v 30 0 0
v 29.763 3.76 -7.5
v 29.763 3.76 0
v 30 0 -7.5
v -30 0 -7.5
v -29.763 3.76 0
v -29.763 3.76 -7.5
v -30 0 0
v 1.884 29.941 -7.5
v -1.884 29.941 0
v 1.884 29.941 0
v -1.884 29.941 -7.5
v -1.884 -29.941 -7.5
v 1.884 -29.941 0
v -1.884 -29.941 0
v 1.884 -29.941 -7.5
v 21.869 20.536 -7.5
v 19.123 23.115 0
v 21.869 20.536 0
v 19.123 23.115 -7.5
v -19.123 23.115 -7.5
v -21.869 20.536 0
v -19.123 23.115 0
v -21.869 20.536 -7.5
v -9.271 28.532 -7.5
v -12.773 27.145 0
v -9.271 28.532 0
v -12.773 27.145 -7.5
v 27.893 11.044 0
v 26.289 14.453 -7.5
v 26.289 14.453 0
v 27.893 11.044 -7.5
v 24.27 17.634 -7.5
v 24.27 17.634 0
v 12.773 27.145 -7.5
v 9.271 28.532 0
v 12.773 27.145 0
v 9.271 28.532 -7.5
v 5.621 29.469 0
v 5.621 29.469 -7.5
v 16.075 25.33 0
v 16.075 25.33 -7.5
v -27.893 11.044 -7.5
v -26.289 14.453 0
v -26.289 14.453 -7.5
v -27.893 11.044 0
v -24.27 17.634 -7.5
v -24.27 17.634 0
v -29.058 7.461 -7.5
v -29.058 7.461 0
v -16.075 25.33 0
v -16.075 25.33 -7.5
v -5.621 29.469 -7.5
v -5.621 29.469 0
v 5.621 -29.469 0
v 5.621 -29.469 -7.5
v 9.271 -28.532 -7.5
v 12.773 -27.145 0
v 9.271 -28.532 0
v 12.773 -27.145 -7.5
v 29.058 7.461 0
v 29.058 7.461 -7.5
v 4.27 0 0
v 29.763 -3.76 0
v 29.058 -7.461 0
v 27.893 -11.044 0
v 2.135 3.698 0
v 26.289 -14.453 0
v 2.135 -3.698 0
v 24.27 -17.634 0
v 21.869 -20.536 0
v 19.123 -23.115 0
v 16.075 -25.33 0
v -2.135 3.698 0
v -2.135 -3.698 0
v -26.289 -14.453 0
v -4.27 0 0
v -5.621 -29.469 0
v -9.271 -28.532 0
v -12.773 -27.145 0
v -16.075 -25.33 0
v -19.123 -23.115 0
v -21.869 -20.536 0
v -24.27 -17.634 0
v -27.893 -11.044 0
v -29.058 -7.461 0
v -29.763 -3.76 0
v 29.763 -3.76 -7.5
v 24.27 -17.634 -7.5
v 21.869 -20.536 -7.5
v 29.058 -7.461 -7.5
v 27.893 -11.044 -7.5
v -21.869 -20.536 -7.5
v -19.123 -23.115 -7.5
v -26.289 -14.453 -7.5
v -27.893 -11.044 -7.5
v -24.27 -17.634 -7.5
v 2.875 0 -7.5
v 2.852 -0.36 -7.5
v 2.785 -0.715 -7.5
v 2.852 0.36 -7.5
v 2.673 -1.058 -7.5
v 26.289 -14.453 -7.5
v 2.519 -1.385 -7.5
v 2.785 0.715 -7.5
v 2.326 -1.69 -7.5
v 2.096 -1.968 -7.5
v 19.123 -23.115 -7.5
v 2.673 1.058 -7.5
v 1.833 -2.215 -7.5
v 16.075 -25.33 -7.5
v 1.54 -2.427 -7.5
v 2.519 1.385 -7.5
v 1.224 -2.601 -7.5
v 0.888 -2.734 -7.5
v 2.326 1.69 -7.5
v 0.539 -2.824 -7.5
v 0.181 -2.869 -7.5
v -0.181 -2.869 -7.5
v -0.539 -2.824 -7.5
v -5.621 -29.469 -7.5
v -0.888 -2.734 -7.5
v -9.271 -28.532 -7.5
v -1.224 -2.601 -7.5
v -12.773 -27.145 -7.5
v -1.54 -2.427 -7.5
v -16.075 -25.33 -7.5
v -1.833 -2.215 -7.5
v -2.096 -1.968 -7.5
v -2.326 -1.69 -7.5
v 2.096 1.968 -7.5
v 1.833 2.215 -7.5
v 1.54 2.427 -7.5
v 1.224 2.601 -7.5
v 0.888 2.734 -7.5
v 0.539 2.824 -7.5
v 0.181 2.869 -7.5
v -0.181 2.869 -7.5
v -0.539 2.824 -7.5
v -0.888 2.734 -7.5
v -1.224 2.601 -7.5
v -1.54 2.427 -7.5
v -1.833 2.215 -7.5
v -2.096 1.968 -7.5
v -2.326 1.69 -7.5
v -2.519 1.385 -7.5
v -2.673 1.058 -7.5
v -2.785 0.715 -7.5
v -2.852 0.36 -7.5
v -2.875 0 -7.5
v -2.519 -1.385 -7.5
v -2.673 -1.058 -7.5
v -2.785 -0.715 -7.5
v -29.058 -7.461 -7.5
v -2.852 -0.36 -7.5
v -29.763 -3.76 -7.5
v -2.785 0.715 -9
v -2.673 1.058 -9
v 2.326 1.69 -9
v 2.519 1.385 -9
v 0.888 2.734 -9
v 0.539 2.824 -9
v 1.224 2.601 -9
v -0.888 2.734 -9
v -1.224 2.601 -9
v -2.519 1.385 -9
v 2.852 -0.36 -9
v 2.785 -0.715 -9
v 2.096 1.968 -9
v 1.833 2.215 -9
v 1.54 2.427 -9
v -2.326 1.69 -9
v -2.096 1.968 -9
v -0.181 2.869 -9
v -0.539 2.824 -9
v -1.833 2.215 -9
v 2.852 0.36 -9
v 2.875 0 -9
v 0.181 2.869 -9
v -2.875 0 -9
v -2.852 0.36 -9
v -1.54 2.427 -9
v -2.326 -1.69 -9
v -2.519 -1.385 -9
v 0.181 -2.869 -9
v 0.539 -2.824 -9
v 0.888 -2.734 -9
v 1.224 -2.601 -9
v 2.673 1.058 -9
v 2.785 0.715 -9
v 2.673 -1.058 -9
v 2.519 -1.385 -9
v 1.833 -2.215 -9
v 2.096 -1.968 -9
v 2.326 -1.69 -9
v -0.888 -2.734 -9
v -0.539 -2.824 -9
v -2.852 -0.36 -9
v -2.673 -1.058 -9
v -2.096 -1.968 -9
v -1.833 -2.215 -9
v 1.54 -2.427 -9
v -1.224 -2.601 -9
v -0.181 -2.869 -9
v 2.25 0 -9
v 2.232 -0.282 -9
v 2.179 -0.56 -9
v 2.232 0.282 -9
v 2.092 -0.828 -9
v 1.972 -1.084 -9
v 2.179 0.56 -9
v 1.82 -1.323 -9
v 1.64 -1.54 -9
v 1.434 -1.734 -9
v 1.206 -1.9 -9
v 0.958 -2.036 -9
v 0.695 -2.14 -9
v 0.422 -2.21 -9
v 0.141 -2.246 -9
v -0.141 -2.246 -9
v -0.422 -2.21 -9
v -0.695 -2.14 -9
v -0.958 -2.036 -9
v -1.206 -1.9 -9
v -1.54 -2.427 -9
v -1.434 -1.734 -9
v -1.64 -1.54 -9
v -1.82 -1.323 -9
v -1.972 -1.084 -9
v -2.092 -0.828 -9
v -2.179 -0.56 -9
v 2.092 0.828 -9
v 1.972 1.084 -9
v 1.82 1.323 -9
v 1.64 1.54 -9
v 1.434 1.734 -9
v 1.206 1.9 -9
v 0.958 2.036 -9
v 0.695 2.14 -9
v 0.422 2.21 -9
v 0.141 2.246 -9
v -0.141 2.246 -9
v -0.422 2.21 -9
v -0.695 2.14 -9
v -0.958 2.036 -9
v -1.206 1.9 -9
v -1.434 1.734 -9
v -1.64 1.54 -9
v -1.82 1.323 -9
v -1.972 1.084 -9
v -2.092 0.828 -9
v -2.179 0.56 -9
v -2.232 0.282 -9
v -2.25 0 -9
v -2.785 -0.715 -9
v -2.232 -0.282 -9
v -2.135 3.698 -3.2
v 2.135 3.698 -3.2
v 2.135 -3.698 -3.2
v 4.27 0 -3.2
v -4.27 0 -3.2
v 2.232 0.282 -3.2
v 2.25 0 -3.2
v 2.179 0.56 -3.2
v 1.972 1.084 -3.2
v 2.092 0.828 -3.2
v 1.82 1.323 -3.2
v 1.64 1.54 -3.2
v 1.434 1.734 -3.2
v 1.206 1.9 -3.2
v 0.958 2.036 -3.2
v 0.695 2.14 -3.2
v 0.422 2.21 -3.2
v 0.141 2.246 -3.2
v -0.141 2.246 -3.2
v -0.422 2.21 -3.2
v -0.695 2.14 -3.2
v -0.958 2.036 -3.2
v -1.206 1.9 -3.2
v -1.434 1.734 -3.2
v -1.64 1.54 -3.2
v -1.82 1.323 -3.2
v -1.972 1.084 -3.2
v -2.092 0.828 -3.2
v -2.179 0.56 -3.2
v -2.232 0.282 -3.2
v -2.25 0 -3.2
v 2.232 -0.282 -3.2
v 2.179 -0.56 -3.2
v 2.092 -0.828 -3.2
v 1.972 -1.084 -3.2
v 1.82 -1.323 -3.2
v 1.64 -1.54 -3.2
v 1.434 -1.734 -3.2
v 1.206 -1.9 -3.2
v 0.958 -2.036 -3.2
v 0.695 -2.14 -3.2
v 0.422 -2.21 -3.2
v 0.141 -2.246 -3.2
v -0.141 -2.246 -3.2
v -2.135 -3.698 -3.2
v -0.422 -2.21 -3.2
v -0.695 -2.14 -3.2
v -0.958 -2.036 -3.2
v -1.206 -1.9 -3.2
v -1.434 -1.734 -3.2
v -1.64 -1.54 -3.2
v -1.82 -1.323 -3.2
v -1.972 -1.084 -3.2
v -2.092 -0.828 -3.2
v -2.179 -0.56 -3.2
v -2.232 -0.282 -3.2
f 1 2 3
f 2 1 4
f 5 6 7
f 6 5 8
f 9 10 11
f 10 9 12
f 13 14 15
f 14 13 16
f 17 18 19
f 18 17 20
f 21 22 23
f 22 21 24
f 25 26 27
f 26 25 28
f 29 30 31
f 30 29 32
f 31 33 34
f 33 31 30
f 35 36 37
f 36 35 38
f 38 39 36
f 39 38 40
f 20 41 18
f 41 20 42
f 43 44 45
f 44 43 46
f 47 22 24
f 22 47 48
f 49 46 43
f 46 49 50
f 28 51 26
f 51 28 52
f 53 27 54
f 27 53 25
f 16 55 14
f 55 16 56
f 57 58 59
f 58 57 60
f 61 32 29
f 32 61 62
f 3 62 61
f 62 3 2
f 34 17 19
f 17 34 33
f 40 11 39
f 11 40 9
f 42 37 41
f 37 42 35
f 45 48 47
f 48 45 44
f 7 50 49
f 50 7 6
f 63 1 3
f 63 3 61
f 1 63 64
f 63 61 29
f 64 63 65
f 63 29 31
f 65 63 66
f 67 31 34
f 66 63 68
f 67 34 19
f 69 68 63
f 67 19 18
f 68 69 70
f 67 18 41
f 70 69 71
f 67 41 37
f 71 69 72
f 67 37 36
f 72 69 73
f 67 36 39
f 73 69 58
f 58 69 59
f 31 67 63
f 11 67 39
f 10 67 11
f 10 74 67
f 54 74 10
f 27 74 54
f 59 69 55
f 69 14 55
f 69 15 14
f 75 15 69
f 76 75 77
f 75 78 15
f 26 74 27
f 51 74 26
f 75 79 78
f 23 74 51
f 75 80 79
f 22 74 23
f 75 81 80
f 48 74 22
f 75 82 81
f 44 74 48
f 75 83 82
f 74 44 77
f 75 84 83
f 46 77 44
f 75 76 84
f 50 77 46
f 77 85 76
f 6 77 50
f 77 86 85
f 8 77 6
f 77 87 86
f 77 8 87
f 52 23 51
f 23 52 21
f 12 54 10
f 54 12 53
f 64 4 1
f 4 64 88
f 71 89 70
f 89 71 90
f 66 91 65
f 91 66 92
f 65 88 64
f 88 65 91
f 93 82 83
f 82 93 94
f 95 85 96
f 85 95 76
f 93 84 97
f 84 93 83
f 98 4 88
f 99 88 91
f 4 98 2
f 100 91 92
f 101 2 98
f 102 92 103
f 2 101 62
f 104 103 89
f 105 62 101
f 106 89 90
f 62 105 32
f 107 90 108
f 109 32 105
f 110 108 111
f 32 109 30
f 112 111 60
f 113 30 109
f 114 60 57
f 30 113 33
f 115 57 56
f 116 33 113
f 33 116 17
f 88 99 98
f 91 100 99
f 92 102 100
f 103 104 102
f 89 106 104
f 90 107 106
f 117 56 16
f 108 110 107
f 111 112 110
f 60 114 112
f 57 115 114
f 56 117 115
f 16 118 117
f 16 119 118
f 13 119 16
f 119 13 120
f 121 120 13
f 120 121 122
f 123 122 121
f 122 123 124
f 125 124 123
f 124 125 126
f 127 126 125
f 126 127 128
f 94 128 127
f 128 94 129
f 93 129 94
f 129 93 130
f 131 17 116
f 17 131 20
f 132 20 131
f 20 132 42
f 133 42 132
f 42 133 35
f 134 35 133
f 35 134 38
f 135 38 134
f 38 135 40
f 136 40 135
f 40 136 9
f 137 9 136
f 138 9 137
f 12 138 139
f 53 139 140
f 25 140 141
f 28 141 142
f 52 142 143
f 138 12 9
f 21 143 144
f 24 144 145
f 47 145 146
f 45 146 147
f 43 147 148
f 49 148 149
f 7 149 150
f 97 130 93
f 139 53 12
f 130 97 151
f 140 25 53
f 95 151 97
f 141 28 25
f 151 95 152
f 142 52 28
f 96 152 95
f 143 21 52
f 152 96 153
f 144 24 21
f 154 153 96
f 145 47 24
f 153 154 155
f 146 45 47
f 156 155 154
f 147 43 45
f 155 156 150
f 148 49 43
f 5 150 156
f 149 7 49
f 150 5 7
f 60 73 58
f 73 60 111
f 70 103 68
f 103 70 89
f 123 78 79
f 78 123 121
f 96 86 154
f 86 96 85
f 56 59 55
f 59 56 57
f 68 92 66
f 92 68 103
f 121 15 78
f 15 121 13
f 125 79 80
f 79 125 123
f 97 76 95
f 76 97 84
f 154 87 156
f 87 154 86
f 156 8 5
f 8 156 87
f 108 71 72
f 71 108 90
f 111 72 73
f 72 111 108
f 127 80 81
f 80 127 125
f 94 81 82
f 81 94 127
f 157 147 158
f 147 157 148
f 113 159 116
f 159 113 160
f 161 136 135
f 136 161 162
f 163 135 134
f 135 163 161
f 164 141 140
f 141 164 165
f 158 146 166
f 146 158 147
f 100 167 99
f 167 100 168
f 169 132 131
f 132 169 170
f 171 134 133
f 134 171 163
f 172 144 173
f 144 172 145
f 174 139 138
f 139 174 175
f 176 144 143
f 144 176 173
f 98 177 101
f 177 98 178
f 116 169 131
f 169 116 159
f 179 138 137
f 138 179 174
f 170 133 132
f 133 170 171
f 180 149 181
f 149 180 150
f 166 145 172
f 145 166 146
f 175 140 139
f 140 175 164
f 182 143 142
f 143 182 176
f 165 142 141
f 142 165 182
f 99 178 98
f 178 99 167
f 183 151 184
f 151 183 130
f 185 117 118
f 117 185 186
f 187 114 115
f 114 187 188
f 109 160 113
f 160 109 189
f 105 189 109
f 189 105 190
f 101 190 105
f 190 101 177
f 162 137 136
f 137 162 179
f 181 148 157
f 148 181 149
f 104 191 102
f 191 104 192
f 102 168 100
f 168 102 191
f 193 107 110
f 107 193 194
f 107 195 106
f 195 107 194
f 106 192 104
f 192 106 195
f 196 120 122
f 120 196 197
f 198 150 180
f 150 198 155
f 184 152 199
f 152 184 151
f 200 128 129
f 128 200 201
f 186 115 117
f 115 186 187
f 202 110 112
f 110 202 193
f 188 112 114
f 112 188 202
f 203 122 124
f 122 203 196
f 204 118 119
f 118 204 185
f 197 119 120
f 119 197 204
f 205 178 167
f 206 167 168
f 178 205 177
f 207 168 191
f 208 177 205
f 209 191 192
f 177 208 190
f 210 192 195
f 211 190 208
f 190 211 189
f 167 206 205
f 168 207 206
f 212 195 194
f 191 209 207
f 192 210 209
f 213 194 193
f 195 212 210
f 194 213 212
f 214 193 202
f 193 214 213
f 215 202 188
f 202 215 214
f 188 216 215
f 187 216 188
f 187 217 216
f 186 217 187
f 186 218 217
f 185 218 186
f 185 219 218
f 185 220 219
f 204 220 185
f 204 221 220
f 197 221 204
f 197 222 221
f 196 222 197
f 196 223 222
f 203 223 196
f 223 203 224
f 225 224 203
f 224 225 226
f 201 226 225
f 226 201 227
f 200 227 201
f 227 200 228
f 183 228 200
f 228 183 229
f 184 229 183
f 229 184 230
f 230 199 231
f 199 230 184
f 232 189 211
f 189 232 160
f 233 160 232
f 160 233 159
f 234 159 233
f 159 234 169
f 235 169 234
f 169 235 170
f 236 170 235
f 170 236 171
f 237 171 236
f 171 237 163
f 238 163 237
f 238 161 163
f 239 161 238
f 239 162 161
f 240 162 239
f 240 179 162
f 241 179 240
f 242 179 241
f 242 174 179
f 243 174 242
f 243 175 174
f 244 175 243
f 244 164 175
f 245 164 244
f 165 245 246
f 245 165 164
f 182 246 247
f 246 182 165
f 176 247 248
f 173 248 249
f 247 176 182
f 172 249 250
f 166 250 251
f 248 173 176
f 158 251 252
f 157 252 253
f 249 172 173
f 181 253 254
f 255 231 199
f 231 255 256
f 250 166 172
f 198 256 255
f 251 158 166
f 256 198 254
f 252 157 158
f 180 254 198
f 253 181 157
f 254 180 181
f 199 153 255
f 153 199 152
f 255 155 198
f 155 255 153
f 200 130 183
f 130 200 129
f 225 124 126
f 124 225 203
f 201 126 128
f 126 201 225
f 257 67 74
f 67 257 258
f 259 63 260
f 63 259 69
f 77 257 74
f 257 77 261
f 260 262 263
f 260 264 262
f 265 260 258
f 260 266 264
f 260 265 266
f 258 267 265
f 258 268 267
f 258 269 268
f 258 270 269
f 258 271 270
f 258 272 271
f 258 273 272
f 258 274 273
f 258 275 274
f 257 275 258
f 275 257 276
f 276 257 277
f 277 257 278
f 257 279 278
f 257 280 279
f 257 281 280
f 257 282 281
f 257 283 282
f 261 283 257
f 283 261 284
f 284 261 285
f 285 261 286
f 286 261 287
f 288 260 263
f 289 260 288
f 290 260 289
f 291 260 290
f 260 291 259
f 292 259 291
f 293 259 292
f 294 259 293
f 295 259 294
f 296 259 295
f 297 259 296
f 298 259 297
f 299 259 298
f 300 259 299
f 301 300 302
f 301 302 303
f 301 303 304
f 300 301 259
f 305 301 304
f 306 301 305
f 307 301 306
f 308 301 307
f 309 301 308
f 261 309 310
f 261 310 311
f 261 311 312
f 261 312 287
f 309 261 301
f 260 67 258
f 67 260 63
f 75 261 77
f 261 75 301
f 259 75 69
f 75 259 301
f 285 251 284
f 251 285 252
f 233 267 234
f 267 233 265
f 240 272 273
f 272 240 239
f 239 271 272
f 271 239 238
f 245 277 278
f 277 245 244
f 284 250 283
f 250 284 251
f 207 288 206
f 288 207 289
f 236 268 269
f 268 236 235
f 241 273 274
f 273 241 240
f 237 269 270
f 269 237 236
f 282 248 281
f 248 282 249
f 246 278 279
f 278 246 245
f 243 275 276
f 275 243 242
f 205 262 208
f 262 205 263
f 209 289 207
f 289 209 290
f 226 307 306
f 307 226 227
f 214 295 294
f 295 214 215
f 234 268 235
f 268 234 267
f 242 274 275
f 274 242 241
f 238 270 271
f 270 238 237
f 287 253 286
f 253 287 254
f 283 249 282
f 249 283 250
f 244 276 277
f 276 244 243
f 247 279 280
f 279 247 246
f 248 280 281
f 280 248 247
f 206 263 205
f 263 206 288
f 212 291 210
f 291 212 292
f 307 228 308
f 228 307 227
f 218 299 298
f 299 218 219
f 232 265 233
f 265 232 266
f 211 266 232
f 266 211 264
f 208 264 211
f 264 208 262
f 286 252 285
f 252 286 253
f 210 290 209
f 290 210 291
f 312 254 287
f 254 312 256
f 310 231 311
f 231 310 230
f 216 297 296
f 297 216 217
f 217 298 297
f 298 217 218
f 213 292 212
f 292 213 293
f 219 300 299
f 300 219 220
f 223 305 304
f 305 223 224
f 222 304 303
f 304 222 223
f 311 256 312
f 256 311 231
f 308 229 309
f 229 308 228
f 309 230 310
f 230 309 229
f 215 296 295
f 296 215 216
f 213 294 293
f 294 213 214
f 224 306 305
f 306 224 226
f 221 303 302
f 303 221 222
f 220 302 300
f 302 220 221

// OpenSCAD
$fn = 50;


difference() {
	union() {
		translate(v = [0, 0, -7.5000000000]) {
			cylinder(h = 7.5000000000, r = 30.0000000000);
		}
		translate(v = [0, 0, -9.0000000000]) {
			cylinder(h = 9, r = 2.8750000000);
		}
	}
	union() {
		translate(v = [0, 0, 0]) {
			rotate(a = [0, 0, 0]) {
				difference() {
					union() {
						translate(v = [0, 0, -3.2000000000]) {
							linear_extrude(height = 3.2000000000) {
								polygon(points = [[4.2698000000, 0.0000000000], [2.1349000000, 3.6977552691], [-2.1349000000, 3.6977552691], [-4.2698000000, 0.0000000000], [-2.1349000000, -3.6977552691], [2.1349000000, -3.6977552691]]);
							}
						}
					}
					union();
				}
			}
		}
		#translate(v = [0, 0, -100.0000000000]) {
			cylinder(h = 200, r = 2.2500000000);
		}
	}
}
